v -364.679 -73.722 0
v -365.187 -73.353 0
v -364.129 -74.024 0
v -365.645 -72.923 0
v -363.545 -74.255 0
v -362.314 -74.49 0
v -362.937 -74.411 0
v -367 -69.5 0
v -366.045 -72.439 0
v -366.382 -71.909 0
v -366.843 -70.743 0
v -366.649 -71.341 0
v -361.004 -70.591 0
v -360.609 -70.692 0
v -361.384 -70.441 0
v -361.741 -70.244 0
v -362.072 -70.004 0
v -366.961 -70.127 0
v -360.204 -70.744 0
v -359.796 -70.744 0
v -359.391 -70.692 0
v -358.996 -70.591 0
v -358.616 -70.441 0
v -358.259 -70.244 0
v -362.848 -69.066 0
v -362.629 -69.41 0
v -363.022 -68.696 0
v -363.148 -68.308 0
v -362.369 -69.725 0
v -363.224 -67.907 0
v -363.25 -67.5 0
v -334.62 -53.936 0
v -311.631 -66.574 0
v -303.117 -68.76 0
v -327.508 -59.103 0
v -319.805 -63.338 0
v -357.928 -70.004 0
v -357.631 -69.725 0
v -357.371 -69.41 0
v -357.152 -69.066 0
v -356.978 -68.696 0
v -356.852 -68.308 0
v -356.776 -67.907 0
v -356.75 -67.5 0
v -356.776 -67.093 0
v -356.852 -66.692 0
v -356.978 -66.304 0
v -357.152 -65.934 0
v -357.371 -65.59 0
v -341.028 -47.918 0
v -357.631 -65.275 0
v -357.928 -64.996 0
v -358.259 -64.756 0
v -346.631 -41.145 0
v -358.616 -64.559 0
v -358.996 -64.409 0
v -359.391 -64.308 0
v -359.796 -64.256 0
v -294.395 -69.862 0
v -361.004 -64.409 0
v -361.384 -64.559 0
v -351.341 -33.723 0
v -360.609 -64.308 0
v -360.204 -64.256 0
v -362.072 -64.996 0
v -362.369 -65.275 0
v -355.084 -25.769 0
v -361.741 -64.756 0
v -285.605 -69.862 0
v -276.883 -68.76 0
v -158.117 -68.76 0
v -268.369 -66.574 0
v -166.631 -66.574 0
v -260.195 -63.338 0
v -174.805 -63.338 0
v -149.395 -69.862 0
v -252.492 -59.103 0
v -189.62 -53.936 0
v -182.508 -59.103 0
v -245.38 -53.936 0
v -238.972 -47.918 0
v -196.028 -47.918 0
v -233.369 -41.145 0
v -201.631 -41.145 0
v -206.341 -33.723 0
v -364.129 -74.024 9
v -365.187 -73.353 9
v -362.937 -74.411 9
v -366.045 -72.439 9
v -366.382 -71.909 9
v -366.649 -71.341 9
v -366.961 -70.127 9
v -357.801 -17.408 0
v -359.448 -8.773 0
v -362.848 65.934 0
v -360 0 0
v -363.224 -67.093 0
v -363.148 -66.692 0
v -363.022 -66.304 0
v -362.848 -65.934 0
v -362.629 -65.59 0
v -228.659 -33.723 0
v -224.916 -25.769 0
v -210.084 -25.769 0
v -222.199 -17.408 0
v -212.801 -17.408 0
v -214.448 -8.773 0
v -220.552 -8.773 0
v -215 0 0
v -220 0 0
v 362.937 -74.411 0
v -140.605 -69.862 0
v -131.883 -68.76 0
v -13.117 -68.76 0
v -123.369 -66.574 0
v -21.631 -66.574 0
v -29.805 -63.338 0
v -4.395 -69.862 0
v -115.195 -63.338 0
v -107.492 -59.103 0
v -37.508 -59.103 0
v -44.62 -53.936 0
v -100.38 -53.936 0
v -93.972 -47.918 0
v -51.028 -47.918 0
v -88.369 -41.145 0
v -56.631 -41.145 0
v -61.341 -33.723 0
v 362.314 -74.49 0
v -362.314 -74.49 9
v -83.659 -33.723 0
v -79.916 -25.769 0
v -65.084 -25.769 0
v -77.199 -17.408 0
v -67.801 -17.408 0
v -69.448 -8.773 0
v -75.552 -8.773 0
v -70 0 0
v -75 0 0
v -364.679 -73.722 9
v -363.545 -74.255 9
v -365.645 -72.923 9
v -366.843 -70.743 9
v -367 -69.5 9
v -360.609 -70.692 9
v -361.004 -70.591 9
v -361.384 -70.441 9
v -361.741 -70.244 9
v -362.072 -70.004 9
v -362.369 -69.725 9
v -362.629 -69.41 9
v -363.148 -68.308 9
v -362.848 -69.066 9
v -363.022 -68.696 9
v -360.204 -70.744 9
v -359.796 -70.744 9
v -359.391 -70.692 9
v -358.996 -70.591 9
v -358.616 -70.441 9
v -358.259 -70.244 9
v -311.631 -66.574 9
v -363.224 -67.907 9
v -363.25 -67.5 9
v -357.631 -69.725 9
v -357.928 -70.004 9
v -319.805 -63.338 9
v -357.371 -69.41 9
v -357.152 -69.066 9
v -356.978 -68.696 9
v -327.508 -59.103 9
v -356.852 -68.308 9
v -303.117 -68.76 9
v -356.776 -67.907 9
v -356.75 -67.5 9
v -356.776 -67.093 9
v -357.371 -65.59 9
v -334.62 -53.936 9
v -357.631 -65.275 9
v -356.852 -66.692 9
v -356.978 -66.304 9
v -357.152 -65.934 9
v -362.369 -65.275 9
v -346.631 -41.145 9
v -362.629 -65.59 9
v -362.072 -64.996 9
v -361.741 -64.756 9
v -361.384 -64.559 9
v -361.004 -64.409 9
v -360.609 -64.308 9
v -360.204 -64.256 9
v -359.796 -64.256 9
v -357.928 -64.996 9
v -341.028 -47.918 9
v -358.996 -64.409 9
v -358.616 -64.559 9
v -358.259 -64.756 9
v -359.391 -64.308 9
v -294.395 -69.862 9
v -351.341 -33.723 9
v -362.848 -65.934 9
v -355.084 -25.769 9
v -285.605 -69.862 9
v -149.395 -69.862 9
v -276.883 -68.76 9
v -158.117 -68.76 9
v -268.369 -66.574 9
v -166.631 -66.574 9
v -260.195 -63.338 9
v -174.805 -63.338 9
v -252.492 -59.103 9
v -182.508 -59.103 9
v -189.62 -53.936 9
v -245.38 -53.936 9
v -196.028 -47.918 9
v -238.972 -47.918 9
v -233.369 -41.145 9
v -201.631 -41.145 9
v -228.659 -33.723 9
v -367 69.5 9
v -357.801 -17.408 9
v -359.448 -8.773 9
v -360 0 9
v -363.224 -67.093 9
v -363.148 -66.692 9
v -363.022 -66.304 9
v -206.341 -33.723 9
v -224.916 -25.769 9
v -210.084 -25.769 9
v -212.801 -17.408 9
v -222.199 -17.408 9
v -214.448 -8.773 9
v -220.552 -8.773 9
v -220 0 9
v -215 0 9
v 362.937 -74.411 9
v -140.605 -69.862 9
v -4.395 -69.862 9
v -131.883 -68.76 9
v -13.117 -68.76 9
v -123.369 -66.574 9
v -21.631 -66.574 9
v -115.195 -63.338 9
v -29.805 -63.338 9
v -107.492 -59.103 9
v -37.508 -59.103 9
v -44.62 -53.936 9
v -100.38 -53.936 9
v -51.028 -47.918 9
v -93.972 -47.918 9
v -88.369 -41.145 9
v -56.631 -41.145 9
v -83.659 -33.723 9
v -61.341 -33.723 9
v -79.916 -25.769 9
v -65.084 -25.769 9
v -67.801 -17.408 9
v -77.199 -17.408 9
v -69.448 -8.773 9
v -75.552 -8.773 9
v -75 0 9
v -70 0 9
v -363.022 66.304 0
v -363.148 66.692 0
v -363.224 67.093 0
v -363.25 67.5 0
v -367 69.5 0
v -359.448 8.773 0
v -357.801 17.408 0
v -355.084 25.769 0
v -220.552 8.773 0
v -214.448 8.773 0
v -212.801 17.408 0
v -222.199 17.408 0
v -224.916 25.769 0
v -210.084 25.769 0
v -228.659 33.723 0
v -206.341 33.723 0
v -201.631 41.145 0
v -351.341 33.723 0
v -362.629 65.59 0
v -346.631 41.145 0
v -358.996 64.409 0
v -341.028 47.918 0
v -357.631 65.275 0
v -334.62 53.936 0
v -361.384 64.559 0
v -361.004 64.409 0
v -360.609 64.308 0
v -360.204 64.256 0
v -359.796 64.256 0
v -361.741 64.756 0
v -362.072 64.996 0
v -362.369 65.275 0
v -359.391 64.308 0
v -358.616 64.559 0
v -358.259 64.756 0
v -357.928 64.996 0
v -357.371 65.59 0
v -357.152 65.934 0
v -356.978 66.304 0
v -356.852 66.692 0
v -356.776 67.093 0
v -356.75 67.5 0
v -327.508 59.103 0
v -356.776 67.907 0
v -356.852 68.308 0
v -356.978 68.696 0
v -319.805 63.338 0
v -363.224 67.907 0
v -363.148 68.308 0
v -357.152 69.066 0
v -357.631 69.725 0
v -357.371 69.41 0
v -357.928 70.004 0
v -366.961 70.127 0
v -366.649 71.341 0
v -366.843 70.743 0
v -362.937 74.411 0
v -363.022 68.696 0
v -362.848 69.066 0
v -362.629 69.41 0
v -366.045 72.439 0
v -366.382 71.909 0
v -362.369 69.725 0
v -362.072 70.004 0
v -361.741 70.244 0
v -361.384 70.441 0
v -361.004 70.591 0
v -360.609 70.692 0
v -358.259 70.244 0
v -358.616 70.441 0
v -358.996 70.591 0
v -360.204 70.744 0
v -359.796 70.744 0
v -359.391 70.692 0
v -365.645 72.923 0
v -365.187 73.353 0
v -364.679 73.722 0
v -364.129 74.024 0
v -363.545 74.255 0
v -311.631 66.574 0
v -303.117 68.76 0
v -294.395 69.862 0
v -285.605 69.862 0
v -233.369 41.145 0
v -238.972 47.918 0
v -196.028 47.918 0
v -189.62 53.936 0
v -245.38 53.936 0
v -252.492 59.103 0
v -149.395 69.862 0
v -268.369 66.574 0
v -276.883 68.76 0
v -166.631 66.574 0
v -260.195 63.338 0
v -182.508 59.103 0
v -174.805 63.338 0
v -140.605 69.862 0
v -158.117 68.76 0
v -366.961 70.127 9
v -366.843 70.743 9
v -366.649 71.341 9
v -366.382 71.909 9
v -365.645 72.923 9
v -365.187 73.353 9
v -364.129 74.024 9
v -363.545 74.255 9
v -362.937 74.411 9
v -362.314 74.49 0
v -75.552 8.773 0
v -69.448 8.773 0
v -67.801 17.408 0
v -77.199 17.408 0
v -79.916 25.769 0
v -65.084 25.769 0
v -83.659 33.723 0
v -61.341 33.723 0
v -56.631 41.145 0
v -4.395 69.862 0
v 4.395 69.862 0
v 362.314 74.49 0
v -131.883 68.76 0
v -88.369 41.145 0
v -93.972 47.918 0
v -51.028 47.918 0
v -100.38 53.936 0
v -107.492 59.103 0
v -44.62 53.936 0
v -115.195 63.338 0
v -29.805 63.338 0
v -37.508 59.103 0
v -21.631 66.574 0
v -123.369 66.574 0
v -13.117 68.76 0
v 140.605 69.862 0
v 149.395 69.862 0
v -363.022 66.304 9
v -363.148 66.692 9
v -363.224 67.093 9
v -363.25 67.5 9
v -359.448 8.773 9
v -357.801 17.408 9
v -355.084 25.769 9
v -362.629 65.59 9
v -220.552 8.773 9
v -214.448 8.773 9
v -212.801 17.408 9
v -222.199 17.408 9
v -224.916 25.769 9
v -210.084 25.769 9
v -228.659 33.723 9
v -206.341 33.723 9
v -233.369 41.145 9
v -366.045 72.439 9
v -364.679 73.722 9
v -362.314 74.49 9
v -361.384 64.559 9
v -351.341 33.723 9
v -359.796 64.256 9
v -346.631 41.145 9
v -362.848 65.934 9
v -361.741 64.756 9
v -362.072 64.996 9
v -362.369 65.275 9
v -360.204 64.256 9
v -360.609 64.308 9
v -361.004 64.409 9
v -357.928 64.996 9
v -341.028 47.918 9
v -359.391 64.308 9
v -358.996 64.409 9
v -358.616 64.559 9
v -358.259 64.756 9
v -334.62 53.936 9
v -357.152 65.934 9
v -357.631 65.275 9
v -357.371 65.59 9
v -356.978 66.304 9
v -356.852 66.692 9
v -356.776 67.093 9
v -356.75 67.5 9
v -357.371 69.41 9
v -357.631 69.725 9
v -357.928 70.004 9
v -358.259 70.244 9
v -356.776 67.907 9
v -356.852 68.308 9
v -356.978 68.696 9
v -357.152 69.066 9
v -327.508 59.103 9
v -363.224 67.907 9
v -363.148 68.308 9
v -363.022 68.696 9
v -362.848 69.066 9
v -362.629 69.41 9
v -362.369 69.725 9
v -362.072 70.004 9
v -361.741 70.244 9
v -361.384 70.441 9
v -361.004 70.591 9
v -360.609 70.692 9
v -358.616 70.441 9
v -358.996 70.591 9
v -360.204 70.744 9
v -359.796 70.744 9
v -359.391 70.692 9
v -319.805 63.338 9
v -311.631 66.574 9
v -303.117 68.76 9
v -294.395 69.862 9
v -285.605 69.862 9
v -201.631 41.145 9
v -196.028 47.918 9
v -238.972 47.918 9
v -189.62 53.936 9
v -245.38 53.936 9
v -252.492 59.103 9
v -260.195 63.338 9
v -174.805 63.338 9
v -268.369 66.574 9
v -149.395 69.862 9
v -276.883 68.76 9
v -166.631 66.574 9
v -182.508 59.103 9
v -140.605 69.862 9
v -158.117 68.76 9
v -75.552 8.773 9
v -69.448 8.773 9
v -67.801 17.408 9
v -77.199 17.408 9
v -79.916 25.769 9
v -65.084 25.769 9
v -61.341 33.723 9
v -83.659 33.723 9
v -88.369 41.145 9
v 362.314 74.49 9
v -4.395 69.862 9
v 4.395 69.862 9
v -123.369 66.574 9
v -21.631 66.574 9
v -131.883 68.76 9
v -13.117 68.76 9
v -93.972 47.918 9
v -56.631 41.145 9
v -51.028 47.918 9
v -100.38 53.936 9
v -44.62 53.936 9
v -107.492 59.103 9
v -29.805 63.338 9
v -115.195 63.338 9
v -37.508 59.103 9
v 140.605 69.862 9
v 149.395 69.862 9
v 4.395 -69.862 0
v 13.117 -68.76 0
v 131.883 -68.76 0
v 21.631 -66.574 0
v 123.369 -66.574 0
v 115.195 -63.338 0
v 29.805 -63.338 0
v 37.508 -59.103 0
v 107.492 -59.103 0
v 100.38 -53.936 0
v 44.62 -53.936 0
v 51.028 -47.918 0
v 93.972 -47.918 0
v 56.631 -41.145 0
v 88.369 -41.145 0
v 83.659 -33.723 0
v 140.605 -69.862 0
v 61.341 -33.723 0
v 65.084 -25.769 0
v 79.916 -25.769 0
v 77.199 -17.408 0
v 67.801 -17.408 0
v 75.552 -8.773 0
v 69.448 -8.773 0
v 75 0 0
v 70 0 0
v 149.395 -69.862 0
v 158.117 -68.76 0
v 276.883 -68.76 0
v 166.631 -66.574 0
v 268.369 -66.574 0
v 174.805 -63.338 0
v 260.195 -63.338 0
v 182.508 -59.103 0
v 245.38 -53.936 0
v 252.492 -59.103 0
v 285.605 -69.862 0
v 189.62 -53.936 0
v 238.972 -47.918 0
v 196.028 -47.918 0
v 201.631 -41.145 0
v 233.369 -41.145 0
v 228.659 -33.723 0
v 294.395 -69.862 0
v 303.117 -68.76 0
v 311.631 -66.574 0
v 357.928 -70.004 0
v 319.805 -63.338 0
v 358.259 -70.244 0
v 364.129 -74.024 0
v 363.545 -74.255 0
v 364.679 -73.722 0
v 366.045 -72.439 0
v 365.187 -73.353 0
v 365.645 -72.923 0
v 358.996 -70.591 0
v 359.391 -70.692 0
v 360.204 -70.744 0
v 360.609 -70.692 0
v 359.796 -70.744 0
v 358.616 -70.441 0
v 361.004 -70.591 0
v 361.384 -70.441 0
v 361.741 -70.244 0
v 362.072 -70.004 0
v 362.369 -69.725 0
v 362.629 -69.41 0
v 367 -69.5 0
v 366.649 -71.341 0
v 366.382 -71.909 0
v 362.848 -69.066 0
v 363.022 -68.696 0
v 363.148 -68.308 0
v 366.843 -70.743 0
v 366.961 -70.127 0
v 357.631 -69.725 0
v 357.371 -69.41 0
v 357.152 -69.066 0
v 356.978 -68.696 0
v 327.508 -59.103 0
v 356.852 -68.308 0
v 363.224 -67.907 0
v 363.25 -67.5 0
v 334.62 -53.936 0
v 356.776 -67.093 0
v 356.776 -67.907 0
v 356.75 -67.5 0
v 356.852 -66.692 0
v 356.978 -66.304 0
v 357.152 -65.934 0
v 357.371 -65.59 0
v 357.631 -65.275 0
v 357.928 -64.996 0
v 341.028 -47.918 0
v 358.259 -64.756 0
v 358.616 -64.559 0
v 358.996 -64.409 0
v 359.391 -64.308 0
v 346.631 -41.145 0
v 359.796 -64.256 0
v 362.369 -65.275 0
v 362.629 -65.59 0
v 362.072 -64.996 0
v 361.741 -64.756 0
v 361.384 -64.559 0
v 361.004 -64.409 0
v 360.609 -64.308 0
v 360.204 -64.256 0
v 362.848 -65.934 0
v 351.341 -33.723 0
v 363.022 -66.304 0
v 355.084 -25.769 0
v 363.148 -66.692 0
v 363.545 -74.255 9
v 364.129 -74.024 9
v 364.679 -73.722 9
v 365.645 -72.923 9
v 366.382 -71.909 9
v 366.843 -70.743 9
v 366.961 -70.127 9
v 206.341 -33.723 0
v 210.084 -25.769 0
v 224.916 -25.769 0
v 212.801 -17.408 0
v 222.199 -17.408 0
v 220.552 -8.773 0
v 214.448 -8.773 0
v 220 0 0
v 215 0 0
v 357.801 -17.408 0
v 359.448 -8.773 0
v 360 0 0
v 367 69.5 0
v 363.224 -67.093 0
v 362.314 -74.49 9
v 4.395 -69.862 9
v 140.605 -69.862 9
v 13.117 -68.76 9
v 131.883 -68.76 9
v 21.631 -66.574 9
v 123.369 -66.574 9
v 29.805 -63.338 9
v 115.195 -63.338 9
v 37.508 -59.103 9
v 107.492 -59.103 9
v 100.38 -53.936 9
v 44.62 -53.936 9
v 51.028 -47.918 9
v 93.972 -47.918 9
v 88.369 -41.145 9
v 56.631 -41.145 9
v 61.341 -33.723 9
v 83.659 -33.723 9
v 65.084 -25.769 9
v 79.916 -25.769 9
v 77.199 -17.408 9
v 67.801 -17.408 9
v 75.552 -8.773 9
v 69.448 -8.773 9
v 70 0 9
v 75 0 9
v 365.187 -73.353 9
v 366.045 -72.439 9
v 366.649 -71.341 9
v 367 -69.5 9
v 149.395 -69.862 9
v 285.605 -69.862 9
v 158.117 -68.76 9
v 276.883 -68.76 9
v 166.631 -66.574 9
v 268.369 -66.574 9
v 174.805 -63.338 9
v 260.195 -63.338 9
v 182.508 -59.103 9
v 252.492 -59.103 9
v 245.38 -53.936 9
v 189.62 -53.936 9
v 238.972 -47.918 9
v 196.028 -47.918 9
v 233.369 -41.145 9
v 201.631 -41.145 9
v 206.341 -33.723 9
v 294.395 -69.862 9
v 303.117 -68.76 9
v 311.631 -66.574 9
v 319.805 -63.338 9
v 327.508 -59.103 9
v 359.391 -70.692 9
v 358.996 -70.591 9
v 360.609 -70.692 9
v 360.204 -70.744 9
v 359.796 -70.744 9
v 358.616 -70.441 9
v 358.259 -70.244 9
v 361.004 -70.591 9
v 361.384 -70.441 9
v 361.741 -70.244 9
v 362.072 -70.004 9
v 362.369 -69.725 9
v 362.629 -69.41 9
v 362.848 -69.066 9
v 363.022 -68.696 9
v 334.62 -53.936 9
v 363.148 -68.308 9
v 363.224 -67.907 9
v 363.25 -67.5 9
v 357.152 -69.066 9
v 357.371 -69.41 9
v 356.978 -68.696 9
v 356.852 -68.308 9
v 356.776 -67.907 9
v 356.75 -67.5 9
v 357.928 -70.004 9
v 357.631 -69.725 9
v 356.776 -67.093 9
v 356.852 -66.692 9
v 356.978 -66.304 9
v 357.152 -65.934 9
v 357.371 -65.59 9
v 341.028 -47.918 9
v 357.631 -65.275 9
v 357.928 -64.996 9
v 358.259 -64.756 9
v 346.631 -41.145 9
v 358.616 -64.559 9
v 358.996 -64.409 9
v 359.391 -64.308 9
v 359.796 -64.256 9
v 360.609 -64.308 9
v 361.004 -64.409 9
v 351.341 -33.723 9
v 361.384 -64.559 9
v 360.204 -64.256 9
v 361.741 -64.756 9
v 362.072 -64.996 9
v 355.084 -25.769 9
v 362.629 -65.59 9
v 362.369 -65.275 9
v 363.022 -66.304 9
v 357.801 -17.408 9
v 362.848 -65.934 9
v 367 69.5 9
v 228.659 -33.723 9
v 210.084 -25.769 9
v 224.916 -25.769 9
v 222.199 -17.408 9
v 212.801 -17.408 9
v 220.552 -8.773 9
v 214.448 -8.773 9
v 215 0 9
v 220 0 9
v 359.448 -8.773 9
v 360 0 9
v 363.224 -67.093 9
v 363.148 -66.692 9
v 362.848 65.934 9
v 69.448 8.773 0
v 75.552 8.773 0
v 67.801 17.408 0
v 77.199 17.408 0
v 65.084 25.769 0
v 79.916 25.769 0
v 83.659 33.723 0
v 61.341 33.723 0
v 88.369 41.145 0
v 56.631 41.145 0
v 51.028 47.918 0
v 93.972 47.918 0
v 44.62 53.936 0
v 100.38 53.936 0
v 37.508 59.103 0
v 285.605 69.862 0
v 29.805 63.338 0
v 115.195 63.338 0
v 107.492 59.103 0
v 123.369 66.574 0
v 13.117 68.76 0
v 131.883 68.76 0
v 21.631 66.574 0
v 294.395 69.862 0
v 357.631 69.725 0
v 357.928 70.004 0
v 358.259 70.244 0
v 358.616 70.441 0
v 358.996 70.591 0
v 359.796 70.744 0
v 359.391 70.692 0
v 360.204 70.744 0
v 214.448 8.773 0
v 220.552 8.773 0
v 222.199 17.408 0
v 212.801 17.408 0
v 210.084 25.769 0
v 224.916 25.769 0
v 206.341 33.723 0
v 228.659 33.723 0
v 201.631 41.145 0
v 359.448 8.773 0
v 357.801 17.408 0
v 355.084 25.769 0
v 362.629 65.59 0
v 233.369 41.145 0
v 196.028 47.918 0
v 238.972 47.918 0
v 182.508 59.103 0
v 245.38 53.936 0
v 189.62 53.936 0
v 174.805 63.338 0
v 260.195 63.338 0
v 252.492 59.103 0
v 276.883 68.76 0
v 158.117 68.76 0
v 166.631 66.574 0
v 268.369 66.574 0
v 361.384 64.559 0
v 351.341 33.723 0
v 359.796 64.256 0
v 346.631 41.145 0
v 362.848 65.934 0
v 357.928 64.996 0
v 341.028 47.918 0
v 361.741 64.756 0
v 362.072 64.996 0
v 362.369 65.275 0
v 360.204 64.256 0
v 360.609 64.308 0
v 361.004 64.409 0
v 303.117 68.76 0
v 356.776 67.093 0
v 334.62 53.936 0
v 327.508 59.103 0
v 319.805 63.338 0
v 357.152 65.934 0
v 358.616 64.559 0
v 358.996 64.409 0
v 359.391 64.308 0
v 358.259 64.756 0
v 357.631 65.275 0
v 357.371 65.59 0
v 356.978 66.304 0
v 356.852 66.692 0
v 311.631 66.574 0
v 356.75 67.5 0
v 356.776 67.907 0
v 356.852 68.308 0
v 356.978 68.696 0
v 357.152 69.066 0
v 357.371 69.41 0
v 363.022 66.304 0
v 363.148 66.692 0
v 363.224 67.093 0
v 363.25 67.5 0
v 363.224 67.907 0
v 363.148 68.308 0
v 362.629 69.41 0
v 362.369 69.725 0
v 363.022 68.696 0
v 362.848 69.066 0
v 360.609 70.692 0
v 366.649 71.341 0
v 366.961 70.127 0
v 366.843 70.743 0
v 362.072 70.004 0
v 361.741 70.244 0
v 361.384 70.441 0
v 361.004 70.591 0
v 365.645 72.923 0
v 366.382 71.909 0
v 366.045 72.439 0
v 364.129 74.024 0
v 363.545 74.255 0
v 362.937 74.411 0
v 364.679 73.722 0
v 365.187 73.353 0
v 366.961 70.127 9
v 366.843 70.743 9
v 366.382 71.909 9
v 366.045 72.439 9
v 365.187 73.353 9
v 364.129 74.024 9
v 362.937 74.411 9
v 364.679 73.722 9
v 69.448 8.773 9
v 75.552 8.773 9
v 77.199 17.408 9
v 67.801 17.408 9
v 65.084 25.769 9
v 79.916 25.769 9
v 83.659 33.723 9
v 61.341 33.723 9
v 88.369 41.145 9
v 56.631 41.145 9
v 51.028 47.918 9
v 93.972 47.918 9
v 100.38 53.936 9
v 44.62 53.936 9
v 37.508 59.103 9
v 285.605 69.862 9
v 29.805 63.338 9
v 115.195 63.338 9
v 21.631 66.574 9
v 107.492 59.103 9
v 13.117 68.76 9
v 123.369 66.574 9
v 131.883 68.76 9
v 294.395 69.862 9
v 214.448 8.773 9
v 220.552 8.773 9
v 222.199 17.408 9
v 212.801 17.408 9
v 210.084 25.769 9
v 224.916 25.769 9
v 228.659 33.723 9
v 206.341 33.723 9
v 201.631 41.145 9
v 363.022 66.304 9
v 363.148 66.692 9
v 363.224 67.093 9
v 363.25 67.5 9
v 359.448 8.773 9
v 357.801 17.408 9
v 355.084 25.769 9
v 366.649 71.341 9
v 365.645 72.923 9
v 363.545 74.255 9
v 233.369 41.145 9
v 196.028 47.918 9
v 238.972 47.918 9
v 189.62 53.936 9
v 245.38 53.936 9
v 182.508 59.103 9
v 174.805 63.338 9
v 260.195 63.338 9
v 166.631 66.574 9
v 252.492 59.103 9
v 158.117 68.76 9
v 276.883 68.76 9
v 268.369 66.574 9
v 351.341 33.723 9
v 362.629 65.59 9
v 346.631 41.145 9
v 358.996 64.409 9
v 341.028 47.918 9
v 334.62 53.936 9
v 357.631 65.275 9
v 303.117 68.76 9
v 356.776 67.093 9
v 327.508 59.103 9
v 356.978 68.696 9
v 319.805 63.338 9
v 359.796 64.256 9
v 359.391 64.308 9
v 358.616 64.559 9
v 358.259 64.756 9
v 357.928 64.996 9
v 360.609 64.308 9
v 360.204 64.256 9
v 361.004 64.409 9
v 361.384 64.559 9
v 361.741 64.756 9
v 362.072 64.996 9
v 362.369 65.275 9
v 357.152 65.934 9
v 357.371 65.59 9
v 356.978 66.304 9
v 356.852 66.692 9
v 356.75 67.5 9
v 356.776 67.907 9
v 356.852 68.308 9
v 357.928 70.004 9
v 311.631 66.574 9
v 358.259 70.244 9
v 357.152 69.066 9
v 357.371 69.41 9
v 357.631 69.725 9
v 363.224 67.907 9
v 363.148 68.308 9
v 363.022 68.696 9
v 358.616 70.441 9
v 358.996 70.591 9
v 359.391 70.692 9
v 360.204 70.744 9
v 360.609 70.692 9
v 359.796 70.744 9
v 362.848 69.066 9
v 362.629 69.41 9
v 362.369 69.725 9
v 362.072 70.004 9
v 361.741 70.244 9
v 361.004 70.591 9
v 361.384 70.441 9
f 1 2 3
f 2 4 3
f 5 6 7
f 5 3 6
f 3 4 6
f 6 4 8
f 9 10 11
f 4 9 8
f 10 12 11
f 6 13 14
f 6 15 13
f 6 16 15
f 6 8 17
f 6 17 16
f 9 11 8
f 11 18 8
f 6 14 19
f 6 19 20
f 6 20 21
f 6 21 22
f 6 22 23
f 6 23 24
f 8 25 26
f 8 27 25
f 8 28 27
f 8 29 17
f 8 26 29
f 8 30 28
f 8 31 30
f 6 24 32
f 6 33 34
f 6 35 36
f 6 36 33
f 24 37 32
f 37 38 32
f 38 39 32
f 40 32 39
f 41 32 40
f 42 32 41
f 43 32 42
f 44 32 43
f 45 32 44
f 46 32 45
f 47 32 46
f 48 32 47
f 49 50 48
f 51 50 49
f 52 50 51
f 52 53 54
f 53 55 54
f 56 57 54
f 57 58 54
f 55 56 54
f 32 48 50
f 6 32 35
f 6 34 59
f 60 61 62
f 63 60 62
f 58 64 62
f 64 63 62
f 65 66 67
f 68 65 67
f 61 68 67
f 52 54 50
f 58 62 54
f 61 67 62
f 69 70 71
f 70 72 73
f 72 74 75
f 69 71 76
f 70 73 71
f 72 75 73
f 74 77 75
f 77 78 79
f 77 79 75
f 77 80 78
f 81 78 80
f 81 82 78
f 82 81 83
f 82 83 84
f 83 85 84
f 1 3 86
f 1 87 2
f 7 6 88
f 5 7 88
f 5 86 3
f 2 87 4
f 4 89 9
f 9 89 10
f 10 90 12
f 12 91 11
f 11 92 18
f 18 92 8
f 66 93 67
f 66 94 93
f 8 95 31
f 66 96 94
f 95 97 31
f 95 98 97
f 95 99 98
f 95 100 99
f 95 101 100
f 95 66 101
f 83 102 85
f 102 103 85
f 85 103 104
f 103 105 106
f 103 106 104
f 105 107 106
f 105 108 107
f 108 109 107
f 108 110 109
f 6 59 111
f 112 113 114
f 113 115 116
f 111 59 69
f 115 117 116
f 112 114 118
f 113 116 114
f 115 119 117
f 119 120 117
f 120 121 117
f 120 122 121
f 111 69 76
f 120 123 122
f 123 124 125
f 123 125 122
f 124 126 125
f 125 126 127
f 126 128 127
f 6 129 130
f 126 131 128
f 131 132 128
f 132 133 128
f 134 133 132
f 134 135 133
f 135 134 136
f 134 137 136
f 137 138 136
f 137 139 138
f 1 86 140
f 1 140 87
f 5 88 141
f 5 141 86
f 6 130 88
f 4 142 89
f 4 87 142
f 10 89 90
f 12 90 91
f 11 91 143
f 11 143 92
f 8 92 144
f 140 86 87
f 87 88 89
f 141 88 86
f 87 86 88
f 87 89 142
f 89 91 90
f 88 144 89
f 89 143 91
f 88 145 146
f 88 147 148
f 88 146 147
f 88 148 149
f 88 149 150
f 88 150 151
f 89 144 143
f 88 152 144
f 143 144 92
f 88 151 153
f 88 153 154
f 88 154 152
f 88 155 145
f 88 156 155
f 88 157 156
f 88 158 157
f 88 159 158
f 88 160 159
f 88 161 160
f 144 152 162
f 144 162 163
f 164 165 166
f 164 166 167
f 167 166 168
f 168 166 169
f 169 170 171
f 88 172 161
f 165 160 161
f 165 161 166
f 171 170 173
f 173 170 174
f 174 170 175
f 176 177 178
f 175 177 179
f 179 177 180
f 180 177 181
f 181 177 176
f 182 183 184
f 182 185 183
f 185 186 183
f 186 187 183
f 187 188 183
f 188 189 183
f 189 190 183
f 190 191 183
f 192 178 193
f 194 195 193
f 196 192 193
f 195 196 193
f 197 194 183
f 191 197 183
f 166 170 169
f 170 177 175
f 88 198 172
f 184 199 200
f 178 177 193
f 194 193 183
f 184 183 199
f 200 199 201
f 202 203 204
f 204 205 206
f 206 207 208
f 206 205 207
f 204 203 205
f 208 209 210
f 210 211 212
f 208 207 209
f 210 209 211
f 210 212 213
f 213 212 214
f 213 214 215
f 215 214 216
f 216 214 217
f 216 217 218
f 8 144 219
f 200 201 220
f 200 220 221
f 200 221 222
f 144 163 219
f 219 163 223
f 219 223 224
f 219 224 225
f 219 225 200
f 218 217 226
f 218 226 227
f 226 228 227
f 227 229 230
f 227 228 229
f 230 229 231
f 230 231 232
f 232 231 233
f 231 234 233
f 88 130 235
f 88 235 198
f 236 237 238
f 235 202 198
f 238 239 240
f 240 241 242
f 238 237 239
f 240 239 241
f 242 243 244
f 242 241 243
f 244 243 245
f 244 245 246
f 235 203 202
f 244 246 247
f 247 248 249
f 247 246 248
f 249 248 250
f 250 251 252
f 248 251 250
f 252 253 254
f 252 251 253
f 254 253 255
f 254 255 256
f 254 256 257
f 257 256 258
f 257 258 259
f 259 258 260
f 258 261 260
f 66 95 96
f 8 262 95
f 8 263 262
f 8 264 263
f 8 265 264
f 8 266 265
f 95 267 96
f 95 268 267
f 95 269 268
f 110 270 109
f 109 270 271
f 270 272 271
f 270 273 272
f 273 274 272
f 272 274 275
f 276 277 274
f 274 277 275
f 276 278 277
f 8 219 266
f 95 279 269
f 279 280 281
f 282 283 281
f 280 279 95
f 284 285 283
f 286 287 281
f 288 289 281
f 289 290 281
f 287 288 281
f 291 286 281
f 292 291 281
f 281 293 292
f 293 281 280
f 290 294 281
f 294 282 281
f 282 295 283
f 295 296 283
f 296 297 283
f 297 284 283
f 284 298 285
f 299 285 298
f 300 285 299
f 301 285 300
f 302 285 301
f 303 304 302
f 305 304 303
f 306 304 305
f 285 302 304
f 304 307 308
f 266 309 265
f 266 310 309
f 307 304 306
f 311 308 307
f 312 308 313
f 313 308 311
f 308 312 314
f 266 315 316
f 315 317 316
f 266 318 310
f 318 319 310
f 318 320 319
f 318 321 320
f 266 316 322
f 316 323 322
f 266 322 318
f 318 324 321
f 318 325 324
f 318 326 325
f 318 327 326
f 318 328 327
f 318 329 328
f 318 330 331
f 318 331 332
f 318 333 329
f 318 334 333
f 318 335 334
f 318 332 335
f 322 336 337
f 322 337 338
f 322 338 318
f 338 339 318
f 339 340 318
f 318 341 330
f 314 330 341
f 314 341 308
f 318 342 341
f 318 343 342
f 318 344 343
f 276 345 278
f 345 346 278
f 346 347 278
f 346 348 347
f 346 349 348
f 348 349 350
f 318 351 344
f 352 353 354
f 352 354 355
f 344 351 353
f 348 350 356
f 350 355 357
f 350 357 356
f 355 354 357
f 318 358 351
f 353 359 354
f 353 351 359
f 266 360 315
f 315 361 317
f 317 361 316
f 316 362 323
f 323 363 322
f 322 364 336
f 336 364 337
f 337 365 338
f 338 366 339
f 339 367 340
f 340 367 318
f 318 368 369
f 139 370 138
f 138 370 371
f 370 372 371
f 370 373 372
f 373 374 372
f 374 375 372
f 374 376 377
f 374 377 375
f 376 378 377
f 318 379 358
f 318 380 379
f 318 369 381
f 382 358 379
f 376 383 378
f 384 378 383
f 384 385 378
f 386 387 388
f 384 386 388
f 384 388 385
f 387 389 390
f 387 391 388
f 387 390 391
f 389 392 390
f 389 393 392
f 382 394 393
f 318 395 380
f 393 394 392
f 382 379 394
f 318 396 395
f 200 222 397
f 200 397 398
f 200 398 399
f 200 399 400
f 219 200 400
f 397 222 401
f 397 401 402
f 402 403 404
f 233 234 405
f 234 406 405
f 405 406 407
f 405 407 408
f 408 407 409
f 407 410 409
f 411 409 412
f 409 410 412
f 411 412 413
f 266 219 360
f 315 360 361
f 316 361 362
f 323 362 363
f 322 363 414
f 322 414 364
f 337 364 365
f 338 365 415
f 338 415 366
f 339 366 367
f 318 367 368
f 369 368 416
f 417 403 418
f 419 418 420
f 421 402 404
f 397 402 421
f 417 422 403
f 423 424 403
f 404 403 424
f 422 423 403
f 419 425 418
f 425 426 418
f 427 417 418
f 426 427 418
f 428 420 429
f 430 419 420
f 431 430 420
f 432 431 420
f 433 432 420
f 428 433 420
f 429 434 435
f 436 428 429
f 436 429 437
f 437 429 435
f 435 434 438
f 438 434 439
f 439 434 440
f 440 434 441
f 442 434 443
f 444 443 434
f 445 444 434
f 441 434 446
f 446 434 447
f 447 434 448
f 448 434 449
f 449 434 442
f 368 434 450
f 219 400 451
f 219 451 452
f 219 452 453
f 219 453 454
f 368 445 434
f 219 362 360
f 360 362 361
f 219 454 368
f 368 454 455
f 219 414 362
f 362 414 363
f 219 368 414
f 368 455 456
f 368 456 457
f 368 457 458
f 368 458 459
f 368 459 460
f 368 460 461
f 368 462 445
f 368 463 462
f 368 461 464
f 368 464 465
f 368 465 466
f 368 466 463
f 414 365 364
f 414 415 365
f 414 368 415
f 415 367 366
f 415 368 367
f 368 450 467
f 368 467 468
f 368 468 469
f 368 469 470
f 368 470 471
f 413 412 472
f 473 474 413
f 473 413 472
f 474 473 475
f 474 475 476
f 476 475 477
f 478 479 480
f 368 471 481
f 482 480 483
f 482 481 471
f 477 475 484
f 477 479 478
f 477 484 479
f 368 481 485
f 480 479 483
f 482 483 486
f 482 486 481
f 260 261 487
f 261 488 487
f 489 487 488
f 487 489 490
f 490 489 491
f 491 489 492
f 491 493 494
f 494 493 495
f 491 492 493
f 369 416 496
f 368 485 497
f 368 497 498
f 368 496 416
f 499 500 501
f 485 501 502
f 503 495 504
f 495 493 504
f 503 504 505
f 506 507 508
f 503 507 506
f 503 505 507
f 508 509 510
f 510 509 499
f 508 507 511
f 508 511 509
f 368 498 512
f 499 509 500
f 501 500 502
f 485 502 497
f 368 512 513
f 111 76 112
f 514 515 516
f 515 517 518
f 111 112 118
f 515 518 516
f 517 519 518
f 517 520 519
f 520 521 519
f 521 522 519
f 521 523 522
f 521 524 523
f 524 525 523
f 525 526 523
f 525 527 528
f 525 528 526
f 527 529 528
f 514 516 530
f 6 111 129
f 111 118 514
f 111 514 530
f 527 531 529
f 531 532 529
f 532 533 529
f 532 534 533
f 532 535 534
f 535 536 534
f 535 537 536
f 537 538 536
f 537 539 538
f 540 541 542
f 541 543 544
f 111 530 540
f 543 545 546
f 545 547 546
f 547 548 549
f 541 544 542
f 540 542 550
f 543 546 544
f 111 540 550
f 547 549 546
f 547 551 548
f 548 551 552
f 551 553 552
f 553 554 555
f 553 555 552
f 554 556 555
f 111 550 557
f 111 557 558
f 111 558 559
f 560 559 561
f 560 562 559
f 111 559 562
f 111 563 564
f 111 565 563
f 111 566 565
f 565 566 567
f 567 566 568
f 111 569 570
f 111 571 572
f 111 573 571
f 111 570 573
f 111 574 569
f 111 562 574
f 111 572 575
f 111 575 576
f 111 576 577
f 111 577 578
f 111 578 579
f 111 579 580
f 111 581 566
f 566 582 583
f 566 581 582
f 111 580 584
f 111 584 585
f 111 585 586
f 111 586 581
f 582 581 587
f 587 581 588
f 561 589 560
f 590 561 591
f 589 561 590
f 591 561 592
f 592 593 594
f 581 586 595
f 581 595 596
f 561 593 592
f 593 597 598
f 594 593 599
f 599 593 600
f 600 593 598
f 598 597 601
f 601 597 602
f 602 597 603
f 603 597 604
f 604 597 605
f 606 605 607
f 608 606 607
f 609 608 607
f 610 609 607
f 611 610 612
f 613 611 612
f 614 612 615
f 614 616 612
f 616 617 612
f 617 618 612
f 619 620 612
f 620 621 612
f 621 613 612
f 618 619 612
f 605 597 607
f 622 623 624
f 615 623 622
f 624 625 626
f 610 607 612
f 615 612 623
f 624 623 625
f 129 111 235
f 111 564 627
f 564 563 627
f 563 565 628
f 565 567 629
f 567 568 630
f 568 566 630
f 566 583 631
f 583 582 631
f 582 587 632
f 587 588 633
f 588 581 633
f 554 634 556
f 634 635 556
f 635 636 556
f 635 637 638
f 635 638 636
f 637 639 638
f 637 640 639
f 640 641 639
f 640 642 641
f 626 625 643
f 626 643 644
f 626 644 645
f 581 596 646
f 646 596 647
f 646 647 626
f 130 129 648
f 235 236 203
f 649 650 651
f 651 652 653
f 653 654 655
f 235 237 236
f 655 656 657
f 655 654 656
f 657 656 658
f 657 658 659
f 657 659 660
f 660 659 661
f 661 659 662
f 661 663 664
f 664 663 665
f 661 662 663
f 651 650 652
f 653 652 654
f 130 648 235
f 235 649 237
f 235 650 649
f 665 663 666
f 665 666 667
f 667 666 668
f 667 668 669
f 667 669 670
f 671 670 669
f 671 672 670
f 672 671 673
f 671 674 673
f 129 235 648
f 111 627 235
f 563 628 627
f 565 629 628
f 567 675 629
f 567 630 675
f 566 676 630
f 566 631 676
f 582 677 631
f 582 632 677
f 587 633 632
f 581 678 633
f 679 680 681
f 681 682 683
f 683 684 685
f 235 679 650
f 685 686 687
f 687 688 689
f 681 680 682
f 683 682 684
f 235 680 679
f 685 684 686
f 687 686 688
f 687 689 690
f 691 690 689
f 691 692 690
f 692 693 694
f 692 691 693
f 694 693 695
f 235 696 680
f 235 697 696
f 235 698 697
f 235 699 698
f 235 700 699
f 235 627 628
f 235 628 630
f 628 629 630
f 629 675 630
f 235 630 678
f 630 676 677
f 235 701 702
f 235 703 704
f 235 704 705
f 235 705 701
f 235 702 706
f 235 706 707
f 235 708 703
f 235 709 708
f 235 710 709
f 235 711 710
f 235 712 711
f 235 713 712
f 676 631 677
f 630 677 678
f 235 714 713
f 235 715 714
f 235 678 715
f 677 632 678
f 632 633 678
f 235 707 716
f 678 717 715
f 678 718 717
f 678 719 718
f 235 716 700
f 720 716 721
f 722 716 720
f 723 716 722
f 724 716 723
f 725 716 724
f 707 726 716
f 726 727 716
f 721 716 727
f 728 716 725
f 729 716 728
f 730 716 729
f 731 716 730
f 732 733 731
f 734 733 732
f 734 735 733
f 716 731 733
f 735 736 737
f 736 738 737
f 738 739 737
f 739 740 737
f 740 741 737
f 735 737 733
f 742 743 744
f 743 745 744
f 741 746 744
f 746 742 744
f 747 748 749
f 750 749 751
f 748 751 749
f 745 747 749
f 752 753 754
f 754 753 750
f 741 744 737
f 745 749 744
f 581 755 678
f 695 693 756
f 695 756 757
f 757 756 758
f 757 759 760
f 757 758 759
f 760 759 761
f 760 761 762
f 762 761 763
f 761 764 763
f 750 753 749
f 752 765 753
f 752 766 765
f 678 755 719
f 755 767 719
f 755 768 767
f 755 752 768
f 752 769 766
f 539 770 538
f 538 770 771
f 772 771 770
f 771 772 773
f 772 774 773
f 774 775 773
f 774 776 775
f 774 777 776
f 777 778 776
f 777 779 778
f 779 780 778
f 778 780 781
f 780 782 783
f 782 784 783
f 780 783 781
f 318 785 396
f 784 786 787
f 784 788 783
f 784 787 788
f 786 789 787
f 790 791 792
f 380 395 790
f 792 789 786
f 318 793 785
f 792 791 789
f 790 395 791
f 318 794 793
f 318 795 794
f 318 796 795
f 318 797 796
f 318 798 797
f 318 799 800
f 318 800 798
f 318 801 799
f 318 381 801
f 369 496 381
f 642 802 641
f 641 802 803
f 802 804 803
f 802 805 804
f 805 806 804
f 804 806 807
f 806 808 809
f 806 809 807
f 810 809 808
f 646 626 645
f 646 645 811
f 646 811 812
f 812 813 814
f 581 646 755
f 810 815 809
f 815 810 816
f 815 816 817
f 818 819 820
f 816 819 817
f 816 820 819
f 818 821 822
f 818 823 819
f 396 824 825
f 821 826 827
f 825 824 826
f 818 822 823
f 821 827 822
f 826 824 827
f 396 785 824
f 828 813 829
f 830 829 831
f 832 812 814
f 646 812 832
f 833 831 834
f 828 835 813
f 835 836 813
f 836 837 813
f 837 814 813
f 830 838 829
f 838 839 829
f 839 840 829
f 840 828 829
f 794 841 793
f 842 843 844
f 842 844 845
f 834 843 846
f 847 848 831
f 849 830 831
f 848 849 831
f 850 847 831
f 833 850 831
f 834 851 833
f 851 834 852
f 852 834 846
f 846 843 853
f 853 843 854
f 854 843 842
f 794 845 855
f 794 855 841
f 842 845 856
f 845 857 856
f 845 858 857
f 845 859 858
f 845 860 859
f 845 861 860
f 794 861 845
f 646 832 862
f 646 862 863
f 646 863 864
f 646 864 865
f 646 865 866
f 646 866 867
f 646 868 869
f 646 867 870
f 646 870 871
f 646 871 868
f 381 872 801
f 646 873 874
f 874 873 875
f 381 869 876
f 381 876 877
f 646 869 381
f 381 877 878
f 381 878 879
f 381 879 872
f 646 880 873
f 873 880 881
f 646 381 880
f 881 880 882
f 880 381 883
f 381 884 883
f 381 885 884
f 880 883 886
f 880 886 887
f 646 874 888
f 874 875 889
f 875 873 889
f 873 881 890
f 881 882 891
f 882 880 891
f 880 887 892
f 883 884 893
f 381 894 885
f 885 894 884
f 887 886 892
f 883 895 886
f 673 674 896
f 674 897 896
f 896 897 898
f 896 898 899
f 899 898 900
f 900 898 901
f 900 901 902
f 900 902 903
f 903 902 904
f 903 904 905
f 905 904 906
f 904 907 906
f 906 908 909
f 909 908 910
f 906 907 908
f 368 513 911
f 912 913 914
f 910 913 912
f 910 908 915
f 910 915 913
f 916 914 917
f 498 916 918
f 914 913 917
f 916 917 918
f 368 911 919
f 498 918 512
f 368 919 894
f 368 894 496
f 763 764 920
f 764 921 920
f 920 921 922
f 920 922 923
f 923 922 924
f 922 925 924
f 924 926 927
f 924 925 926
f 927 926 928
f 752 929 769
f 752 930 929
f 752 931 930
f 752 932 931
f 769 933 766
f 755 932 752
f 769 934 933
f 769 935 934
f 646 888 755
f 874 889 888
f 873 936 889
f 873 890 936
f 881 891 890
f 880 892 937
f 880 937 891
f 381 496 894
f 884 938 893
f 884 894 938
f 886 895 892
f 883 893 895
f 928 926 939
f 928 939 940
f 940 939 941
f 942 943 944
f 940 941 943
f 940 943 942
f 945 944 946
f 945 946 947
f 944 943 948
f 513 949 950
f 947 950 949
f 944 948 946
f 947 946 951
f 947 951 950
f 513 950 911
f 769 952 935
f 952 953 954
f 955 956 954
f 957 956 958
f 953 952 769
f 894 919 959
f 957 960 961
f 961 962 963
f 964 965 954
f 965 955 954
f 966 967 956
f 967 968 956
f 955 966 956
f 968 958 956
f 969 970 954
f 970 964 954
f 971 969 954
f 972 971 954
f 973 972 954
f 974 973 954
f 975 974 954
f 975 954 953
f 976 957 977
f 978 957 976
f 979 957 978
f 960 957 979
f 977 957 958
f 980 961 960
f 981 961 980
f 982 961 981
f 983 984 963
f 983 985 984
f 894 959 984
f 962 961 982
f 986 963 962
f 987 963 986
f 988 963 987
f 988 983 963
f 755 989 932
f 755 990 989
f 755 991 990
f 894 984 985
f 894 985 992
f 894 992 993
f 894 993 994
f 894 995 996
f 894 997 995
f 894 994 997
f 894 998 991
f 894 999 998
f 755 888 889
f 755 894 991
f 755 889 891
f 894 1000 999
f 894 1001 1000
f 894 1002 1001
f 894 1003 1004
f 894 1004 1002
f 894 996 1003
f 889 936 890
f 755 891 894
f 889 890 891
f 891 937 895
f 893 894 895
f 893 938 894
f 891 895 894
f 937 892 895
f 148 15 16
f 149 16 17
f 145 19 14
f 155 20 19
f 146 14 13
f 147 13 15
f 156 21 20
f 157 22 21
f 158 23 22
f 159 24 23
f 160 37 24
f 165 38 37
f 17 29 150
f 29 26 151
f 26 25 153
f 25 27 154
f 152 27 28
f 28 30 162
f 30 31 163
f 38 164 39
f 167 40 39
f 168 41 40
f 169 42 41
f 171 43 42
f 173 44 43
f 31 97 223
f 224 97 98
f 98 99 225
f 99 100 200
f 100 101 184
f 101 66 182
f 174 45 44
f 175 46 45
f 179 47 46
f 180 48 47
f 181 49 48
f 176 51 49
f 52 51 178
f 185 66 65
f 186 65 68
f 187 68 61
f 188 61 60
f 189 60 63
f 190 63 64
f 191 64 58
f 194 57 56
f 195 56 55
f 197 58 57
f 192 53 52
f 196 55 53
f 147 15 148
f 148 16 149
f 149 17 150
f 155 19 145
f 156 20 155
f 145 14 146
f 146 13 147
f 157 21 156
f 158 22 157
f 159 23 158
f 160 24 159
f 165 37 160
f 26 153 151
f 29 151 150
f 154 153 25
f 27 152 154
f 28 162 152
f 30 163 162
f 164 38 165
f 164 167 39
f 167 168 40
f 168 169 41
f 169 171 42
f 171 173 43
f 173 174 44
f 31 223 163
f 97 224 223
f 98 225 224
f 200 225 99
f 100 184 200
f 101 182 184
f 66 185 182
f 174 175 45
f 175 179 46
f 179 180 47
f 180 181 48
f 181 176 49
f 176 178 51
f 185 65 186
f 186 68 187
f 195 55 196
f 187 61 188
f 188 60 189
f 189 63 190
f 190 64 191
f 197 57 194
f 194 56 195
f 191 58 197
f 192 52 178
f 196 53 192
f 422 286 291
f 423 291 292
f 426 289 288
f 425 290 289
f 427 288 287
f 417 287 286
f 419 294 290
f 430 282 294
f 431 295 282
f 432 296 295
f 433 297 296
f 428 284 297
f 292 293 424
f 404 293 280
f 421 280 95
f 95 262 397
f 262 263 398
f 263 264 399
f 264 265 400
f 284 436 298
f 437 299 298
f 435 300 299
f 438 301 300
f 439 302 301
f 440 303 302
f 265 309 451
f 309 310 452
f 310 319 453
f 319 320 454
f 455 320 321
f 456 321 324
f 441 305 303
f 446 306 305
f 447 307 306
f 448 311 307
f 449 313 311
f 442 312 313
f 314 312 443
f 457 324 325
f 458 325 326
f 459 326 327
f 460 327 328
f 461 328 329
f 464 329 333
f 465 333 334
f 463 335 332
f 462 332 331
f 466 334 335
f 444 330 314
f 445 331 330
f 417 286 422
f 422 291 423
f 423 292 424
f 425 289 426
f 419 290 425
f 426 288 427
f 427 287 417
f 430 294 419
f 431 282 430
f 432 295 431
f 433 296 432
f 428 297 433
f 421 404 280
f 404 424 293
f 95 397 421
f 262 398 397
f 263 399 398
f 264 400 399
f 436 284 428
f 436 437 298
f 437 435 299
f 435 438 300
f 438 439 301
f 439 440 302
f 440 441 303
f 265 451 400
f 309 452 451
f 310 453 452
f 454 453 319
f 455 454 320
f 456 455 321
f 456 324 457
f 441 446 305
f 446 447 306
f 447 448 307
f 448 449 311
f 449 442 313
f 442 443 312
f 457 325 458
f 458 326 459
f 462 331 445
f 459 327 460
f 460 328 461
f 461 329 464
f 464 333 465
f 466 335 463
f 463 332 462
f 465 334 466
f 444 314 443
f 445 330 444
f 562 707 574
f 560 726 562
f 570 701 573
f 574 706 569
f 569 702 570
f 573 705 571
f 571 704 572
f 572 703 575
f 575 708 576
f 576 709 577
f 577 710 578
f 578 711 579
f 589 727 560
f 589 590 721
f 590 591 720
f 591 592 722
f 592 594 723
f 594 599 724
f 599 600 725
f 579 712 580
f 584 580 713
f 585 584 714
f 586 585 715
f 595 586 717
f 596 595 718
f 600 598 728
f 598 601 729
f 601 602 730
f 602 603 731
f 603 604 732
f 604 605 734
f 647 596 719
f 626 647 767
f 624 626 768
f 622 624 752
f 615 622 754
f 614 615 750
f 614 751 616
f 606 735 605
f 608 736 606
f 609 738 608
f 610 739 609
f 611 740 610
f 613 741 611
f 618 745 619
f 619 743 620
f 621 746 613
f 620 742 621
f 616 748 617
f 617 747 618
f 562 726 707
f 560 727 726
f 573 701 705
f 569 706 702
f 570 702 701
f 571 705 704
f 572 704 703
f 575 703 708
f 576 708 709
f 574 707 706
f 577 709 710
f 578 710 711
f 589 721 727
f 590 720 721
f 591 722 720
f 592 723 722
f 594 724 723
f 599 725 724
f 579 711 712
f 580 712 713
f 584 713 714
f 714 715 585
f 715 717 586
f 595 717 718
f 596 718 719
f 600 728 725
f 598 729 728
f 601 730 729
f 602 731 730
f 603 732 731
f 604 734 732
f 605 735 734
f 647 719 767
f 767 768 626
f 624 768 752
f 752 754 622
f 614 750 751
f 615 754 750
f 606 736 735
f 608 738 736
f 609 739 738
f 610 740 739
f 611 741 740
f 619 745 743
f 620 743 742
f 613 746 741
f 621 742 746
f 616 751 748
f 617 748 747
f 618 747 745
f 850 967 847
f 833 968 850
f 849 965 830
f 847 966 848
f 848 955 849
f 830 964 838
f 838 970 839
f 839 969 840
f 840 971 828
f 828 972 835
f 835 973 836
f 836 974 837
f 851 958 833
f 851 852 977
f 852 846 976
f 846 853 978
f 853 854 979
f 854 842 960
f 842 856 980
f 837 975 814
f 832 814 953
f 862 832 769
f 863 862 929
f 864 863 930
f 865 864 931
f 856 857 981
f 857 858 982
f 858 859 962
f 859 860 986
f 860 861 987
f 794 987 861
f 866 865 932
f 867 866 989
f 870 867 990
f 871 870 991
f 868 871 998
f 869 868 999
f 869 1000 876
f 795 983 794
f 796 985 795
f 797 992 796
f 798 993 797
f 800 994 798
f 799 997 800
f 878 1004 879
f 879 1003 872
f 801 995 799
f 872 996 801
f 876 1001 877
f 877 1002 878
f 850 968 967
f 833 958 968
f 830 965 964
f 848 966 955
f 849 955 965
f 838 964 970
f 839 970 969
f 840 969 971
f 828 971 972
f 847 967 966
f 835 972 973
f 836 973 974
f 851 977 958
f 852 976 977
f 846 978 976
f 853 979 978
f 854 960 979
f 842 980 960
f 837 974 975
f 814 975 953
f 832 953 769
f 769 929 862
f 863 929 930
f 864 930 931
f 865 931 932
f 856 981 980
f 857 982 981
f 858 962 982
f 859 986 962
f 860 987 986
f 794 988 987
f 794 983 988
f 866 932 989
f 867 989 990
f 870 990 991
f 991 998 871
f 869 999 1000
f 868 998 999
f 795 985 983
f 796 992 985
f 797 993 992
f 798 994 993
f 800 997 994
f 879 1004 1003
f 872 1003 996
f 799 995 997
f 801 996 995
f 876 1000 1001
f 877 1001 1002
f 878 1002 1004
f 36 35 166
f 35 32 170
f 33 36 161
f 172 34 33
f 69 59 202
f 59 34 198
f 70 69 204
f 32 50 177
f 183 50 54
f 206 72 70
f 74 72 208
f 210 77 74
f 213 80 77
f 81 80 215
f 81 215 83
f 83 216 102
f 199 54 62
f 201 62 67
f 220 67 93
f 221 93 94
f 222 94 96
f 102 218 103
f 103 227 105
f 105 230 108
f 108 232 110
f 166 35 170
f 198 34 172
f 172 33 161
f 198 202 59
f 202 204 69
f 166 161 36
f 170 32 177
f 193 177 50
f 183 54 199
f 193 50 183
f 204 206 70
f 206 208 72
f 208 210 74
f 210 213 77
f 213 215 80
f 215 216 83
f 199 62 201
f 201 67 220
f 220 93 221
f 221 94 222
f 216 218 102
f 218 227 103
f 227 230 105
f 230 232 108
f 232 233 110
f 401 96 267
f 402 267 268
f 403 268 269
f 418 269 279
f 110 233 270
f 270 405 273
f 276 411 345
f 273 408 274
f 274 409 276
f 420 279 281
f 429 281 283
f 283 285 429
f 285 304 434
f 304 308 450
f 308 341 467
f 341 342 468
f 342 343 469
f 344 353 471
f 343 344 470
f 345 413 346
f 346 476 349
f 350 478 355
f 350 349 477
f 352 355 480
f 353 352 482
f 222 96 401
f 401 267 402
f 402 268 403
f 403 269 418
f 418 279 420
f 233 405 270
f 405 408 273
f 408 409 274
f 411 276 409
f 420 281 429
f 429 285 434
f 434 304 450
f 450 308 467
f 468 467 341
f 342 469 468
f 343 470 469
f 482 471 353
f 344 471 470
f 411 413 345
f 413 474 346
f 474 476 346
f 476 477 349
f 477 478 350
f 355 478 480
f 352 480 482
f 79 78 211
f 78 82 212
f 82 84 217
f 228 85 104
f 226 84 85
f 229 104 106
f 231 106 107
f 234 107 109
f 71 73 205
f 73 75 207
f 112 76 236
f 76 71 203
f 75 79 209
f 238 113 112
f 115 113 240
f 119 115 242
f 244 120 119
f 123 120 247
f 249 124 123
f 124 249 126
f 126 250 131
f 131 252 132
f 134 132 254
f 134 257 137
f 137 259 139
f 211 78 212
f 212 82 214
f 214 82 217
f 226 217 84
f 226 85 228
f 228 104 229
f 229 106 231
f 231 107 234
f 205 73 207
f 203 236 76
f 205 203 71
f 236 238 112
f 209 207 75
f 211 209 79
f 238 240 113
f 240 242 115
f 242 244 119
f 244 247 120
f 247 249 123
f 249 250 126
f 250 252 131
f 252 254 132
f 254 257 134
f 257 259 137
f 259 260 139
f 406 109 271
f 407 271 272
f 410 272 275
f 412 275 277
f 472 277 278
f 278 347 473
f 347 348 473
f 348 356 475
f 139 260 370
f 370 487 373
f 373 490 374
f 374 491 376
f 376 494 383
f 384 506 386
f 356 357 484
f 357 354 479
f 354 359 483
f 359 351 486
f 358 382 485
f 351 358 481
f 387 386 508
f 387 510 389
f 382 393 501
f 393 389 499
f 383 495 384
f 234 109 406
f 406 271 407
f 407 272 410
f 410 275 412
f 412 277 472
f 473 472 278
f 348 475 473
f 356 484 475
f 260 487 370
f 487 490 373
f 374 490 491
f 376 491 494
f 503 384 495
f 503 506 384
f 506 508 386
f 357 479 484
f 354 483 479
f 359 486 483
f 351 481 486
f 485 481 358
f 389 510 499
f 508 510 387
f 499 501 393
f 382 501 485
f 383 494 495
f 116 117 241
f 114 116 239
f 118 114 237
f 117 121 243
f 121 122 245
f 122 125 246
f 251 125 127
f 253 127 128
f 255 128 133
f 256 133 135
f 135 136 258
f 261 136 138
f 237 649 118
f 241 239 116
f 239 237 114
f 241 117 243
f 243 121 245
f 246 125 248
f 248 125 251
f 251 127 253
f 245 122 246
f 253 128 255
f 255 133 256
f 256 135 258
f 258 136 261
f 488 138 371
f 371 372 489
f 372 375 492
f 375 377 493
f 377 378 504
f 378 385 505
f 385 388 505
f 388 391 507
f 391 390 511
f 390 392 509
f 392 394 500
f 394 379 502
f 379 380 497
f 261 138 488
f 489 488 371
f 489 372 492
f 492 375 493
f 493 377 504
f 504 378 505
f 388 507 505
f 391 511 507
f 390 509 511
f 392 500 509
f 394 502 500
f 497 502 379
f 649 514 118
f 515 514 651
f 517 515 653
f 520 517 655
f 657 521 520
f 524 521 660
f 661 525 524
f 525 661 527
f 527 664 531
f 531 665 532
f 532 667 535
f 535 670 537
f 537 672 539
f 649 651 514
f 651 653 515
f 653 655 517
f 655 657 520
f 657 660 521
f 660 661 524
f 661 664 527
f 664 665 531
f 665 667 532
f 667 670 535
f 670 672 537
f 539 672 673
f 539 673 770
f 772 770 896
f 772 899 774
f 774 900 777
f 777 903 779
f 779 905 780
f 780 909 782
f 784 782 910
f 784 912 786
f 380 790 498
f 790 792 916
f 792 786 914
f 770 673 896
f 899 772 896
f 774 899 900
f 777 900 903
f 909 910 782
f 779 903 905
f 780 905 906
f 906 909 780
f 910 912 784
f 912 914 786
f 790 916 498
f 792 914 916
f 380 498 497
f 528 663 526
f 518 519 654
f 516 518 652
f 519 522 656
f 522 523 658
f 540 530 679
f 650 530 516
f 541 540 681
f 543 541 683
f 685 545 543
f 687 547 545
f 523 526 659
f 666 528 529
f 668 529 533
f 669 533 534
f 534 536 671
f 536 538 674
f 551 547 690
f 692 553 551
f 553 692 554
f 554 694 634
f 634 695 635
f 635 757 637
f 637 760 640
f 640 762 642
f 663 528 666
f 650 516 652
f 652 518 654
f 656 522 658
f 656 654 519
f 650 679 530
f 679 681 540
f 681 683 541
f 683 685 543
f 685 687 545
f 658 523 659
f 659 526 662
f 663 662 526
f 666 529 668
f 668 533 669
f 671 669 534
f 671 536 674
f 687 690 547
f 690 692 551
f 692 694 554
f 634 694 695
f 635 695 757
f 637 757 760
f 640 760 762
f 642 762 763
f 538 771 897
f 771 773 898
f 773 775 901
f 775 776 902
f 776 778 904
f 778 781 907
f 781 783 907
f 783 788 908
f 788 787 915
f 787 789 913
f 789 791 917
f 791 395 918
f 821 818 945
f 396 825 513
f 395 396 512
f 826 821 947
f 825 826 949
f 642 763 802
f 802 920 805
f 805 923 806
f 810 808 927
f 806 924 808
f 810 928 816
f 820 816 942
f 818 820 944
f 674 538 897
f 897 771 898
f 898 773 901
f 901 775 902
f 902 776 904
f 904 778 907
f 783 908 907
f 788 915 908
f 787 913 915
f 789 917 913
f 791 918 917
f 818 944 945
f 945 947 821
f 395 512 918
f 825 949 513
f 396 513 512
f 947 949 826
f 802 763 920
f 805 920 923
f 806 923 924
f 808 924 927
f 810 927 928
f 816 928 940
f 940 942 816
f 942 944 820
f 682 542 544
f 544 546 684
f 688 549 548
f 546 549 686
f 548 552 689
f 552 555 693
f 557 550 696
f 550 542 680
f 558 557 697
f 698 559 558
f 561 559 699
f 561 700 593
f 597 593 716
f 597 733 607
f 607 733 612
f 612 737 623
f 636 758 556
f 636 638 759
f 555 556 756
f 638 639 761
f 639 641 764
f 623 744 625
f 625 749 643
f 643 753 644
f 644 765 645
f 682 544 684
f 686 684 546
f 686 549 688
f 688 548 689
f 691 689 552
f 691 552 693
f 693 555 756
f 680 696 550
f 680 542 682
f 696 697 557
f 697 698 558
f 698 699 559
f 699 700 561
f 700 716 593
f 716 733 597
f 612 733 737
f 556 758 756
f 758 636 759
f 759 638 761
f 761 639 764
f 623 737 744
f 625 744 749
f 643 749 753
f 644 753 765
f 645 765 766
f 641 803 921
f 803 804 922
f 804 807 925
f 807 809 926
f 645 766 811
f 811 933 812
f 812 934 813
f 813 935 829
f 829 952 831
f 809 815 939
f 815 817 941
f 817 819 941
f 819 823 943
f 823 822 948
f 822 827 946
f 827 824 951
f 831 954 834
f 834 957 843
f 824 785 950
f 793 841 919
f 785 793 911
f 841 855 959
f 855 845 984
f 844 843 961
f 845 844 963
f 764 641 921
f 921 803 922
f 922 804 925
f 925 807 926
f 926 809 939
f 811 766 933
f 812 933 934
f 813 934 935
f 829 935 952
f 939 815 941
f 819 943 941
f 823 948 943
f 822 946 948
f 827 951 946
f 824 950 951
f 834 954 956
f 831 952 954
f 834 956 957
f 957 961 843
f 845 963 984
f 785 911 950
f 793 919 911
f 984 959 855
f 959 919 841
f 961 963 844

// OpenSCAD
$fn = 50;

difference() {
	union() {
		hull() {
			translate(v = [-362.0, 69.5, 0]) {
				cylinder(h = 9, r = 5);
			}
			translate(v = [362.0, 69.5, 0]) {
				cylinder(h = 9, r = 5);
			}
			translate(v = [-362.0, -69.5, 0]) {
				cylinder(h = 9, r = 5);
			}
			translate(v = [362.0, -69.5, 0]) {
				cylinder(h = 9, r = 5);
			}
		}
	}
	union() {
		translate(v = [-360.0, -67.5, -100.0]) {
			cylinder(h = 200, r = 3.25);
		}
		translate(v = [-360.0, 67.5, -100.0]) {
			cylinder(h = 200, r = 3.25);
		}
		translate(v = [360.0, -67.5, -100.0]) {
			cylinder(h = 200, r = 3.25);
		}
		translate(v = [360.0, 67.5, -100.0]) {
			cylinder(h = 200, r = 3.25);
		}
		translate(v = [-360.0, -67.5, -100.0]) {
			cylinder(h = 200, r = 1.8);
		}
		translate(v = [-360.0, 67.5, -100.0]) {
			cylinder(h = 200, r = 1.8);
		}
		translate(v = [360.0, -67.5, -100.0]) {
			cylinder(h = 200, r = 1.8);
		}
		translate(v = [360.0, 67.5, -100.0]) {
			cylinder(h = 200, r = 1.8);
		}
		translate(v = [-290.0, 0, 0.0]) {
			cylinder(h = 9, r = 70.0);
		}
		translate(v = [-145.0, 0, 0.0]) {
			cylinder(h = 9, r = 70.0);
		}
		cylinder(h = 9, r = 70.0);
		translate(v = [145.0, 0, 0.0]) {
			cylinder(h = 9, r = 70.0);
		}
		translate(v = [290.0, 0, 0.0]) {
			cylinder(h = 9, r = 70.0);
		}
	}
}
